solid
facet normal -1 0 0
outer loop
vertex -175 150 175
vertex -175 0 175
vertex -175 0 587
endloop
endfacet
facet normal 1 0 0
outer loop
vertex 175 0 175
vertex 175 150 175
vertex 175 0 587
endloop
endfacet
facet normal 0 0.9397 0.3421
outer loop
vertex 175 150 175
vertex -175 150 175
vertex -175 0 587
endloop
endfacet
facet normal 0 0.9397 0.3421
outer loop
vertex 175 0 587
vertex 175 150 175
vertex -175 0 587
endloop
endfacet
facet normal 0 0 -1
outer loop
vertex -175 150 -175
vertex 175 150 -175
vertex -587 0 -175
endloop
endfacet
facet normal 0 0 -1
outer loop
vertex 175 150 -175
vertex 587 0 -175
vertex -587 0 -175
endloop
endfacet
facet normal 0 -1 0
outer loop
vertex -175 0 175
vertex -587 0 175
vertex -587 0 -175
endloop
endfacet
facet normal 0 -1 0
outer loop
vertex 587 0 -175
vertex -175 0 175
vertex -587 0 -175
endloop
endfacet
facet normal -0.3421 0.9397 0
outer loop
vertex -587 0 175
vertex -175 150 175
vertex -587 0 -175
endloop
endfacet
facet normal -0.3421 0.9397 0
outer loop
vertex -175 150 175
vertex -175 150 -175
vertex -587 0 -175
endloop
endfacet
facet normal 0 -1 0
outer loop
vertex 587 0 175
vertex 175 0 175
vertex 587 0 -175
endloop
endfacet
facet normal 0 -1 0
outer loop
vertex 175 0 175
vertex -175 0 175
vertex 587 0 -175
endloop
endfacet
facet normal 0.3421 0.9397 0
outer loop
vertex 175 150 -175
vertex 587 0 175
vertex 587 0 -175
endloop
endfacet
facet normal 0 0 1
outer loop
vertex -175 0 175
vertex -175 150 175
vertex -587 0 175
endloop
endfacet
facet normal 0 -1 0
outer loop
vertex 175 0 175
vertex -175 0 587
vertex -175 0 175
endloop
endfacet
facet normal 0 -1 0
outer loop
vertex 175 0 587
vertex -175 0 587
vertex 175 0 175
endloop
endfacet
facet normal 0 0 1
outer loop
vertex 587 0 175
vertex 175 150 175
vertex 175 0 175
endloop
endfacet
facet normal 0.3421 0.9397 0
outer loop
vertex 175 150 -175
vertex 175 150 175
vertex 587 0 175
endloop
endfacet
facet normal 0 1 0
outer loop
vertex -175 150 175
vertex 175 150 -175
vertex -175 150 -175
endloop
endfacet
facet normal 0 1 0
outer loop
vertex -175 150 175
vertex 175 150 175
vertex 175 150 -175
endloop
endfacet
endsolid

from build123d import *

# Parameters (mm, degrees)
RAMPBASE_W          = 350
RAMPBASE_H          = 350
BOSS_EXTRUDE1_DEPTH = 150
BOSS_EXTRUDE3_DEPTH = 350
BOSS_EXTRUDE5_DEPTH = 350


with BuildPart() as part:
    # rampbase → Boss-Extrude1 (new body)
    with BuildSketch(Plane(origin=(0, 0, 0), x_dir=(1, 0, 0), z_dir=(0, 1, 0))):
        Rectangle(RAMPBASE_W, RAMPBASE_H)
    extrude(amount=BOSS_EXTRUDE1_DEPTH)

    # Sketch6 → Boss-Extrude3 (add)
    with BuildSketch(Plane(origin=(175, 0, 0), x_dir=(0, 0, -1), z_dir=(1, 0, 0))):
        Polygon((-175, 150), (-175, 0), (-587, 0), align=None)
    extrude(amount=-BOSS_EXTRUDE3_DEPTH)

    # Sketch7 → Boss-Extrude5 (add)
    with BuildSketch(Plane(origin=(0, 0, -175), x_dir=(-1, 0, 0), z_dir=(0, 0, -1))):
        Polygon((175, 150), (175, 0), (587, 0), align=None)
        Polygon((-175, 0), (-587, 0), (-175, 150), align=None)
    extrude(amount=-BOSS_EXTRUDE5_DEPTH)


solid = part.part
